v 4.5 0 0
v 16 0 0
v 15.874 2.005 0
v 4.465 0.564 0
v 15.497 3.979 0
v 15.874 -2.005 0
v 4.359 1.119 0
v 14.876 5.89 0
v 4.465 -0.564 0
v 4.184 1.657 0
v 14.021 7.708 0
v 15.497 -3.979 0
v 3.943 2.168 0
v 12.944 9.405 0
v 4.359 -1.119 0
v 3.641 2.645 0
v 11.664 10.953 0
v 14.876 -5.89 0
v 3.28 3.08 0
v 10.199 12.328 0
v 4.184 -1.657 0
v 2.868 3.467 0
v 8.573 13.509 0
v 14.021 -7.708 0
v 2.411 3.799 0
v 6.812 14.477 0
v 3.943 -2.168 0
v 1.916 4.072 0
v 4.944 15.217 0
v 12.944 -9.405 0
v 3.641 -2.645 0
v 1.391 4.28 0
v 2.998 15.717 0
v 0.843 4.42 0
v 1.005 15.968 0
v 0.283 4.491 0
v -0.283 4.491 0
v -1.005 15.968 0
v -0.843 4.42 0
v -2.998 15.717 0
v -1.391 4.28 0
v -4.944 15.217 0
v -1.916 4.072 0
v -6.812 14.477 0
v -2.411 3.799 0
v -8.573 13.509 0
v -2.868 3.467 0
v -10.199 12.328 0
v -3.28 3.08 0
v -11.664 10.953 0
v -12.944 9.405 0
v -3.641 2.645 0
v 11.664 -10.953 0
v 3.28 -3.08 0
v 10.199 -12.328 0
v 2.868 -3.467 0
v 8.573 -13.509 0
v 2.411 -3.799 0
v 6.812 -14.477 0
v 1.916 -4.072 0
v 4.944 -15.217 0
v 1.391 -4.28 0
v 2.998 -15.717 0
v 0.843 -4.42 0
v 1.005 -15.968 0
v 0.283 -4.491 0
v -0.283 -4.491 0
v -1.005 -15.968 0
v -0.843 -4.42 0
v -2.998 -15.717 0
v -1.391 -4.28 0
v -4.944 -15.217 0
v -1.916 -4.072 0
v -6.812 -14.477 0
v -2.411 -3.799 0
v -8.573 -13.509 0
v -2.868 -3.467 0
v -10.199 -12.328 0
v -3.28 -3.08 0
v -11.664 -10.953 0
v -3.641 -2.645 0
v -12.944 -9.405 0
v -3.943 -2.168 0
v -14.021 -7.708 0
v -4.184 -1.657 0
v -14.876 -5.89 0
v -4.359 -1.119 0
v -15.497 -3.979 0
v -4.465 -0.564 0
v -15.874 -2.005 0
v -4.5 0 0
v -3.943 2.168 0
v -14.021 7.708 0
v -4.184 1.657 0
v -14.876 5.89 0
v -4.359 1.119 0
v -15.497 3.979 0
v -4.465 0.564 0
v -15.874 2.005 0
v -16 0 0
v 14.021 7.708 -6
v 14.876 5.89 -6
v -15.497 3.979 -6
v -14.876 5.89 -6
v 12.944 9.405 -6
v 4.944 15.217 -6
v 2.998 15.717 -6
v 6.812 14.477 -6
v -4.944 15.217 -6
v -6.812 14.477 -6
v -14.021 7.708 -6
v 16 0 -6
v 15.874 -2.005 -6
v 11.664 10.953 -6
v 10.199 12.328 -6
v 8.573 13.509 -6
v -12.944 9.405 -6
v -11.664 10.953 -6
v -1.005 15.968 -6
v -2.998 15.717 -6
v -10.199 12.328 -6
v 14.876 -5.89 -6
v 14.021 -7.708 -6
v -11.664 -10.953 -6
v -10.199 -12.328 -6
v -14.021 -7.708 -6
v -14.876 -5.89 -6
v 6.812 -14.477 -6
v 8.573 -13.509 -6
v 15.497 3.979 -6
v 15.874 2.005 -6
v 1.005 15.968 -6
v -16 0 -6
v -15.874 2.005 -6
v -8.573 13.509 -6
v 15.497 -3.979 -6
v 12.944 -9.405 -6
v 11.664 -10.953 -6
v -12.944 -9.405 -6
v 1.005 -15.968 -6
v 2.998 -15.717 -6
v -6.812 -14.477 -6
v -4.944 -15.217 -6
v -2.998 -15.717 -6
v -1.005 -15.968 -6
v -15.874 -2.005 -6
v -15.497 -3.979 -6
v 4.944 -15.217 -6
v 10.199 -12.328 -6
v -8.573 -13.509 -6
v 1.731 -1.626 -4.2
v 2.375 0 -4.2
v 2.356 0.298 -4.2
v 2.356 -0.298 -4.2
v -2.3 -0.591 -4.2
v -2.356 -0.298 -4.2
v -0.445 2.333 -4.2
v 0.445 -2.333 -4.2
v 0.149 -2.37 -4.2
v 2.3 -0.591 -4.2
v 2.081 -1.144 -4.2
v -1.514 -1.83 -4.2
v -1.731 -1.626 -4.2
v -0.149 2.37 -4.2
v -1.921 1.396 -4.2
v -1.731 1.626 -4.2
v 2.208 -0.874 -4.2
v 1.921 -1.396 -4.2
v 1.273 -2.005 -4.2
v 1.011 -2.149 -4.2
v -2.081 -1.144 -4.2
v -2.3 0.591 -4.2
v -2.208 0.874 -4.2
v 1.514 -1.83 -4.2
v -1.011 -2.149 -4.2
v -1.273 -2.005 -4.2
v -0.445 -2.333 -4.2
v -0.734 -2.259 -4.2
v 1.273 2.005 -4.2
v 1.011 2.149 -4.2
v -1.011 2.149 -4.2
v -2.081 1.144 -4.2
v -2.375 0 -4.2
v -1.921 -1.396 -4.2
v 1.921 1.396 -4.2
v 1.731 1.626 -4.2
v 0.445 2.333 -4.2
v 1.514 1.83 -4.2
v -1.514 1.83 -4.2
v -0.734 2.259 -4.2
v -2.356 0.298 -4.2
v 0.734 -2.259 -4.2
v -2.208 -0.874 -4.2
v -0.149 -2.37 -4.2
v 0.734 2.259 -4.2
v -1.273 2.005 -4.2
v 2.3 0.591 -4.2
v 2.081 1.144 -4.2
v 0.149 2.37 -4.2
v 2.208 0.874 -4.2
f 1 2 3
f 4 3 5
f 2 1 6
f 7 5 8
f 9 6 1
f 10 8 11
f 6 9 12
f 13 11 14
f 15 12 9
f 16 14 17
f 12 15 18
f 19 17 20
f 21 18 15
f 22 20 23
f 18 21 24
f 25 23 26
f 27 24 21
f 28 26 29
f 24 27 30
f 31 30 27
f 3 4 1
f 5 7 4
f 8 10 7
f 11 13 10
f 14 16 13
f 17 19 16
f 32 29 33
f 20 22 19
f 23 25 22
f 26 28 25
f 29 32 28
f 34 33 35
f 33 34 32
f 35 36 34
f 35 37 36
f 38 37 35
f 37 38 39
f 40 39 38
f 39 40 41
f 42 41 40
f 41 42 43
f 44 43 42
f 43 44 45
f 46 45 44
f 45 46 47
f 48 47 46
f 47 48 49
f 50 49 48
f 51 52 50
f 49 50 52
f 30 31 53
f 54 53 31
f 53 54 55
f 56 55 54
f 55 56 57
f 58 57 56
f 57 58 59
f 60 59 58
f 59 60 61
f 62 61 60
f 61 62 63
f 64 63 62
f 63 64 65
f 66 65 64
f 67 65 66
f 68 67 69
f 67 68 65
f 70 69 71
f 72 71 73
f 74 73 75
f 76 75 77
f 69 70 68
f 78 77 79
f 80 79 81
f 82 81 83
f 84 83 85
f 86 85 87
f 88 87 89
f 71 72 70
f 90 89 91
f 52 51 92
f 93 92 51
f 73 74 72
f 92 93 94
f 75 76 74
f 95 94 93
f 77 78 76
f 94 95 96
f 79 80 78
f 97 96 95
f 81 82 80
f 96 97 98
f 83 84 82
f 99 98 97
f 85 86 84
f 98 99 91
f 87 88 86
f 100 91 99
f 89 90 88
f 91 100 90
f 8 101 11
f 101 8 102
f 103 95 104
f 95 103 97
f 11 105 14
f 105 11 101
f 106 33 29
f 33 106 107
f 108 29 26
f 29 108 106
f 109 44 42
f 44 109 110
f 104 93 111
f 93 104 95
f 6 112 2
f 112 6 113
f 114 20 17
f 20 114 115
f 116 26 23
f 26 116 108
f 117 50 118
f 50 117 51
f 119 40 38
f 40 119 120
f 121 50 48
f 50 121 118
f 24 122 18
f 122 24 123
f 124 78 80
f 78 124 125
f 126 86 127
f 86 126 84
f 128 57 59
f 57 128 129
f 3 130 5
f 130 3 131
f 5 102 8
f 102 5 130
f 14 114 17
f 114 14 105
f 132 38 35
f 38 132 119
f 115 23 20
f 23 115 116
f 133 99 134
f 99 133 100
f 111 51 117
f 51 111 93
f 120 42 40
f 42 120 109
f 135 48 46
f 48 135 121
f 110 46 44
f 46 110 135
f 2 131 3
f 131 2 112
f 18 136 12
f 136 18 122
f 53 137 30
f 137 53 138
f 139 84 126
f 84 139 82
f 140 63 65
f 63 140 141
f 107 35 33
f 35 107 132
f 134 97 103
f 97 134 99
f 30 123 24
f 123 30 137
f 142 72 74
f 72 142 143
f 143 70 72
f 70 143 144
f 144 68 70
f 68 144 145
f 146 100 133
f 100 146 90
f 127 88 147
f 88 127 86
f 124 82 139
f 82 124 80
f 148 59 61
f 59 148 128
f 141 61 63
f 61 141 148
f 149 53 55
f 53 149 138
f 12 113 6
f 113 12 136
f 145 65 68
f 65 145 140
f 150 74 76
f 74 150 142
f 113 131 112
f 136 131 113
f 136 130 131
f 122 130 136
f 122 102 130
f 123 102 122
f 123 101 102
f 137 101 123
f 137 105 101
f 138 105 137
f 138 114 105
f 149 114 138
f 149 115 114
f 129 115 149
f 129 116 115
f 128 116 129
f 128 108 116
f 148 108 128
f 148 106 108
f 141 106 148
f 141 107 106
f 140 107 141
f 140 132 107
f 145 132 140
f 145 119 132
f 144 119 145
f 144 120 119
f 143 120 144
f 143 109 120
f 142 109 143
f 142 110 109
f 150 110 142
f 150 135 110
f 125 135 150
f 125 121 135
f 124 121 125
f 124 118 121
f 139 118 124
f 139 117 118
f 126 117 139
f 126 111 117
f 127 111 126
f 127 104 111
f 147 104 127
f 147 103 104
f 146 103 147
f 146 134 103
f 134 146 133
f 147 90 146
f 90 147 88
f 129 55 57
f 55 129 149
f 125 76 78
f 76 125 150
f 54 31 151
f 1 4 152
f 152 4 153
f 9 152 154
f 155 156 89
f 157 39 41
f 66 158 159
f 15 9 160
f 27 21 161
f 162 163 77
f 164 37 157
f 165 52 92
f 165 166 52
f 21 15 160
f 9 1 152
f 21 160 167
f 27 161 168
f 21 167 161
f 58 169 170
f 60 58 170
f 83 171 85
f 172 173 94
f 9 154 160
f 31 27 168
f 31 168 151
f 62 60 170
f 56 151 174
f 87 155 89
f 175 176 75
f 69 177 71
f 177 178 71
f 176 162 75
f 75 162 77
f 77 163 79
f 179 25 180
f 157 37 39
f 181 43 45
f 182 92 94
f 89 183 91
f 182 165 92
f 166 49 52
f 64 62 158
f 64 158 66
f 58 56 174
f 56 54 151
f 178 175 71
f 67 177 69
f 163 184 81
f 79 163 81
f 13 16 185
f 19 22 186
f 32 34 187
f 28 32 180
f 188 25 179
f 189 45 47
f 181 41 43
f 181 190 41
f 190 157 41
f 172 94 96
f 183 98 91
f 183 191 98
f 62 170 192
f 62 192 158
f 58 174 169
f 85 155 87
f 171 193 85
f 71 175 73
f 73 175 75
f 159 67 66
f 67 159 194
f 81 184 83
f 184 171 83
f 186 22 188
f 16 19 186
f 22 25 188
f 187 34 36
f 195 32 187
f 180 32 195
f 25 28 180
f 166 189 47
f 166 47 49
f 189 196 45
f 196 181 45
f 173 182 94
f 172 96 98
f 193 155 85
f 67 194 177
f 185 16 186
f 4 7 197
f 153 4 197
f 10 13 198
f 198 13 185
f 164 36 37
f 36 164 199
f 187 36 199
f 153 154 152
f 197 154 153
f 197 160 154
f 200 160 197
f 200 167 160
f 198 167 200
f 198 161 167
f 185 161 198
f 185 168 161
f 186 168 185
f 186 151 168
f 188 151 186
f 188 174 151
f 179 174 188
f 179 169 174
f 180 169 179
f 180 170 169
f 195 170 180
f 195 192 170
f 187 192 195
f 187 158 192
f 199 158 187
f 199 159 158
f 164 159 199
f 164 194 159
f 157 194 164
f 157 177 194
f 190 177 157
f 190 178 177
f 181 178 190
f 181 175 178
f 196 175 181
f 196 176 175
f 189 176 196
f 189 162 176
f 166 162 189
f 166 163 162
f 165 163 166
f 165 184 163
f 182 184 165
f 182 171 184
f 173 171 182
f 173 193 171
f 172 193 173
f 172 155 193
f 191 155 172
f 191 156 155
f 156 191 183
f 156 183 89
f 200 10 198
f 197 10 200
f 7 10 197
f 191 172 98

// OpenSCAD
$fn = 50;


difference() {
	union() {
		translate(v = [0, 0, -3.0000000000]) {
			cylinder(h = 3, r = 7.0000000000);
		}
		translate(v = [0, 0, -6.0000000000]) {
			cylinder(h = 6, r = 16.0000000000);
		}
	}
	union() {
		translate(v = [0, 0, 0]) {
			rotate(a = [0, 0, 0]) {
				difference() {
					union() {
						#translate(v = [0, 0, -3.0000000000]) {
							cylinder(h = 3, r = 2.2500000000);
						}
						#translate(v = [0, 0, -4.2000000000]) {
							cylinder(h = 4.2000000000, r1 = 2.3750000000, r2 = 4.5000000000);
						}
						#translate(v = [0, 0, -3.0000000000]) {
							cylinder(h = 3, r = 2.3750000000);
						}
						#translate(v = [0, 0, -3.0000000000]) {
							cylinder(h = 3, r = 2.2500000000);
						}
					}
					union();
				}
			}
		}
	}
}
